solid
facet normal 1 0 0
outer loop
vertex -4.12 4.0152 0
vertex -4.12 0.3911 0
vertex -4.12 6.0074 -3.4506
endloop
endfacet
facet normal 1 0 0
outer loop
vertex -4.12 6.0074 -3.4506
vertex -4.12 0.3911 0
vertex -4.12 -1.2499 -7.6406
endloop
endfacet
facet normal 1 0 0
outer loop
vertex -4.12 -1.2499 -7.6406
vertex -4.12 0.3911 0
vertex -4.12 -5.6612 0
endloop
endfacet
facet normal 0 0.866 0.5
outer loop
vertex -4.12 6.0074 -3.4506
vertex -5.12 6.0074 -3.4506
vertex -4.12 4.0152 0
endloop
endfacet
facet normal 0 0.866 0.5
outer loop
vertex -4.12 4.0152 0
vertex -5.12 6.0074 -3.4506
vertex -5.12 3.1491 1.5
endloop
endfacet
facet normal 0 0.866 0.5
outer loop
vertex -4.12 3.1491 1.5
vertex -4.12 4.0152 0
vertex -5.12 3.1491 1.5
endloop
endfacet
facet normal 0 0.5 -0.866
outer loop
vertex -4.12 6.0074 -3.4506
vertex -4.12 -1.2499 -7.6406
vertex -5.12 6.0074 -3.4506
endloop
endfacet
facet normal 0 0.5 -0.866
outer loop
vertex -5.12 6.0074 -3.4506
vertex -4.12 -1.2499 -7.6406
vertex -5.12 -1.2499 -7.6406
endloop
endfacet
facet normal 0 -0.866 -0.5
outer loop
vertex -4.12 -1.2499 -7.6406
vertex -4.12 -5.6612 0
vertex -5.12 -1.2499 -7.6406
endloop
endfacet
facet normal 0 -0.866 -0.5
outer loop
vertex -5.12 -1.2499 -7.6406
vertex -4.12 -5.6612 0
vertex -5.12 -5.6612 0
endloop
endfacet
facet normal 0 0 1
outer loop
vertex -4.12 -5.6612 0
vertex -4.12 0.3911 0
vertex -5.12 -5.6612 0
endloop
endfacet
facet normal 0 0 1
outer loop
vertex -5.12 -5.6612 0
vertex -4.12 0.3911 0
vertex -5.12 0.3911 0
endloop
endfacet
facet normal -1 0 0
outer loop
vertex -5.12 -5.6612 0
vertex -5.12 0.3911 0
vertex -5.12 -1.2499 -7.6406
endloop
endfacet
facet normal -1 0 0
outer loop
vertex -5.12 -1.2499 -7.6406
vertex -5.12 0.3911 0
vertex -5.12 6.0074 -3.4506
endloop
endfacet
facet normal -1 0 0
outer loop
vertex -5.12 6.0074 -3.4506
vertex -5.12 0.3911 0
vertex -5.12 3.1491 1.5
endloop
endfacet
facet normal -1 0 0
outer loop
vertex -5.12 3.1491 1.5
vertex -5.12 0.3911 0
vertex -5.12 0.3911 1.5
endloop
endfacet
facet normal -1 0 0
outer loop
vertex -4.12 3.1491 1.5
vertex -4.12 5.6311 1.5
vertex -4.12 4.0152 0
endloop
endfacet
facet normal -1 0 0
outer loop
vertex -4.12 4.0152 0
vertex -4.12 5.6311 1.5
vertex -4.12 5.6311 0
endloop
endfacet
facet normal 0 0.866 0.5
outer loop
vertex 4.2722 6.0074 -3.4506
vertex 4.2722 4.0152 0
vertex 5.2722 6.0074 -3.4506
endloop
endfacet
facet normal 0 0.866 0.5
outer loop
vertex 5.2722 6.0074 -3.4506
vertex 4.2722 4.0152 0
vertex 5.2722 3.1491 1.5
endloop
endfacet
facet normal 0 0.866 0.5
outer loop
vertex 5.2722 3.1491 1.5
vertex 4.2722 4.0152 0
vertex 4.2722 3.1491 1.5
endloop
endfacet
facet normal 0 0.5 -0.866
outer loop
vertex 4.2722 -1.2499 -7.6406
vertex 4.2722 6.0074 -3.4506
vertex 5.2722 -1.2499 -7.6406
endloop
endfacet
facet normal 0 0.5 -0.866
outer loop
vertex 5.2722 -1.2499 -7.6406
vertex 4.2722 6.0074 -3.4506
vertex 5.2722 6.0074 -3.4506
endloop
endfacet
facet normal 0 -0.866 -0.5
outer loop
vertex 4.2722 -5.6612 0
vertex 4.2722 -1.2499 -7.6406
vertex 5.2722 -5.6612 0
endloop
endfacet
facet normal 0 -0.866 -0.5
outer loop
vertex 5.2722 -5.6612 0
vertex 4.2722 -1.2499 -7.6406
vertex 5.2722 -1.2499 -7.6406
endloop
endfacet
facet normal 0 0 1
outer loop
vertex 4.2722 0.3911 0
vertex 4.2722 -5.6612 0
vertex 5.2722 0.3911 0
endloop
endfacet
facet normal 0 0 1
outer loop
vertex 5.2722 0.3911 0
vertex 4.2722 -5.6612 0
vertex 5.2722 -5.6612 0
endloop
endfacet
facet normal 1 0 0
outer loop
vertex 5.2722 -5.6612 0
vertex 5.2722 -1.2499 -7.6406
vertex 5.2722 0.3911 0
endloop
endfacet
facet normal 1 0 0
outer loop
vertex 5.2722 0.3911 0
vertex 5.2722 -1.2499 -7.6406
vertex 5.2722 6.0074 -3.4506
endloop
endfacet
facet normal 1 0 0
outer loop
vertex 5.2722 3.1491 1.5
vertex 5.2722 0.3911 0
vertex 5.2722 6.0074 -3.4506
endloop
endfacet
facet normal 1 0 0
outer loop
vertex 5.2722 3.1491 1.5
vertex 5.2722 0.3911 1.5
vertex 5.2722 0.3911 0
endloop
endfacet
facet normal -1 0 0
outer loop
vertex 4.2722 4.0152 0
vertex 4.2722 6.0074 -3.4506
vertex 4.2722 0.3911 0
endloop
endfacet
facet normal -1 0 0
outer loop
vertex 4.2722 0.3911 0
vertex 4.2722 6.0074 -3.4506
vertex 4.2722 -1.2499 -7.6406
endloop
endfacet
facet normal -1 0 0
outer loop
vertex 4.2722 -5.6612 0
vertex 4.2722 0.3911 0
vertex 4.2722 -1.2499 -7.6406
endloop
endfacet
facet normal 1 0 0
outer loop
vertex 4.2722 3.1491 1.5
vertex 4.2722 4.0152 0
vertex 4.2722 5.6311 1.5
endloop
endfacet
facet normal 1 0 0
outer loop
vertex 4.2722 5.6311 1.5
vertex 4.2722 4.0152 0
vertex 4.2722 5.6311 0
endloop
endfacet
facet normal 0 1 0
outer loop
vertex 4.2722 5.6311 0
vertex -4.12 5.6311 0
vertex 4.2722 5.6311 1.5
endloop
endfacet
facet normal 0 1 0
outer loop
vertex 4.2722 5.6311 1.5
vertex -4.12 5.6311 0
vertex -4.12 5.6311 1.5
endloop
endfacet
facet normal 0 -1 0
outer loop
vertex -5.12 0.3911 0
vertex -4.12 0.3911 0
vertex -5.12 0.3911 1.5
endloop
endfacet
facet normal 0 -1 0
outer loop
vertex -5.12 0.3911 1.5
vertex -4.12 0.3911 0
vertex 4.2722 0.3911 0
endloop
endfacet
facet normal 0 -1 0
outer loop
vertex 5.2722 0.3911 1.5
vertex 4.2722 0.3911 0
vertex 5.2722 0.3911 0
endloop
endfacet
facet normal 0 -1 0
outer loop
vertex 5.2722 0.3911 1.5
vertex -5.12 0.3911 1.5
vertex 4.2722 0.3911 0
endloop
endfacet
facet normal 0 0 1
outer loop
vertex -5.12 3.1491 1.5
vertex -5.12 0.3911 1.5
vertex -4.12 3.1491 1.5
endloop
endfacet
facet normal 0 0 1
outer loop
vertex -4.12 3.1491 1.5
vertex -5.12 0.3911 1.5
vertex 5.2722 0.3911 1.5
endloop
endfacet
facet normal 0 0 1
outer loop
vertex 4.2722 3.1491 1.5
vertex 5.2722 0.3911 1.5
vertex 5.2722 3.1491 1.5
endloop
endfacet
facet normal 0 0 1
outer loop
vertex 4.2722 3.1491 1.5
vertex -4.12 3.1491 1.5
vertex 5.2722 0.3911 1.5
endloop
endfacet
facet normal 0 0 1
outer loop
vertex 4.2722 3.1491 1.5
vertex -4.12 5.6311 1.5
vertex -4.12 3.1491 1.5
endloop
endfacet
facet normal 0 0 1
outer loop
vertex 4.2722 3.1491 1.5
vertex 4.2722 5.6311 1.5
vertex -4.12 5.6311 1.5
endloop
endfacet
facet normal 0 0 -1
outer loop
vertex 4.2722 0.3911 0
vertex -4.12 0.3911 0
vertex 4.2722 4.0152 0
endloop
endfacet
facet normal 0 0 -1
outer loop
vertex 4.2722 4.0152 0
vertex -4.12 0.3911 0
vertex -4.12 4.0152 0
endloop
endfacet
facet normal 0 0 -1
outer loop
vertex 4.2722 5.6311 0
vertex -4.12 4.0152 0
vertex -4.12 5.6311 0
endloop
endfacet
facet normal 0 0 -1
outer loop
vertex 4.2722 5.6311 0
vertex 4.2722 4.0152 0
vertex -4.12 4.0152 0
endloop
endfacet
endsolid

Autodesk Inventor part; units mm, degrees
ref_plane "YZ Plane" through (0, 0, 0) normal (1, 0, 0) x (0, 1, 0)
ref_plane "XZ Plane" through (0, 0, 0) normal (0, 1, 0) x (-1, 0, 0)
ref_plane "XY Plane" through (0, 0, 0) normal (0, 0, 1) x (1, 0, 0)
ref_plane "Work Plane1" through (0, 0, 0) normal (0, 0, 1) x (1, 0, 0)
sketch "Sketch1" plane through (0, 0, 0) normal (0, 0, 1) x (1, 0, 0)
  line L0 (4, -5.5111) -> (4, 5.5111) construction
  line L1 (4, 5.5111) -> (-4, 5.5111) construction
  line L2 (-4, 5.5111) -> (-4, -5.5111) construction
  line L3 (-4, -5.5111) -> (4, -5.5111) construction
  line L4 (-4, 5.5111) -> (4.1522, 5.5111) construction
  line L5 (4.1522, 5.5111) -> (4.1522, 0.5111) construction
  line L6 (4.1522, 0.5111) -> (-4, 0.5111) construction
  line L7 (-4, 0.5111) -> (-4, 5.5111) construction
  line L8 (-4.12, 0.3911) -> (4.2722, 0.3911)
  line L9 (4.2722, 0.3911) -> (4.2722, 5.6311)
  line L10 (4.2722, 5.6311) -> (-4.12, 5.6311)
  line L11 (-4.12, 5.6311) -> (-4.12, 0.3911)
  point P0 (0, 0)
  dimension "d0" = 5
  dimension "d1" = 0.12
extrude "Extrusion1" add sketch "Sketch1" along normal blind 1.5
sketch "Sketch2" plane through (4.2722, 0.3911, 0) normal (1, 0, 0) x (0, 0, -1)
  line L0 (-1.5, 0) -> (-1.5, 5.24) construction
  line L1 (4.4205, 6.1762) -> (4.9103, 6.459) construction
  line L2 (4.9103, 6.459) -> (2.5, 10.6336) construction
  line L3 (2.5, 10.6336) -> (0.5, 9.4789) construction
  line L4 (0.5, 9.4789) -> (0.5, 5.12) construction
  line L5 (0.5, 5.12) -> (0, 5.12) construction
  line L6 (0, -5.9023) -> (0, 5.12) construction
  line L7 (0.5, -5.9023) -> (0, -5.9023) construction
  line L8 (8.6705, -1.185) -> (0.5, -5.9023) construction
  line L9 (8.6705, -1.185) -> (4.4205, 6.1762) construction
  line L10 (0.4678, -5.7823) -> (0.12, -5.7823) construction
  line L11 (0.12, -5.7823) -> (0.12, 5) construction
  line L12 (0.12, 5) -> (0.62, 5) construction
  line L13 (0.62, 5) -> (0.62, 9.4097) construction
  line L14 (0.62, 9.4097) -> (2.4561, 10.4697) construction
  line L15 (2.4561, 10.4697) -> (4.7463, 6.5029) construction
  line L16 (4.7463, 6.5029) -> (4.2566, 6.2201) construction
  line L17 (4.2566, 6.2201) -> (8.5066, -1.1411) construction
  line L18 (8.5066, -1.1411) -> (0.4678, -5.7823) construction
  line L19 (6.2093, 7.209) -> (-21.3823, -8.721) construction
  line L20 (4.3166, 6.1162) -> (-1.5, 2.758)
  line L21 (-1.5, 2.758) -> (-1.5, 0)
  line L22 (-1.5, 0) -> (0.12, 0)
  line L23 (8.5066, -1.1411) -> (0, -6.0524)
  line L24 (0, -6.0524) -> (0, 0)
  line L25 (8.5066, -1.1411) -> (4.3166, 6.1162)
  line L26 (3.4506, 5.6162) -> (7.6406, -1.6411)
  line L27 (0, -6.0524) -> (0, 0)
  line L28 (0, 0) -> (-1.5, 0)
  point P0 (0, -0.3911)
  dimension "d4" = 0.12
  dimension "d5" = 1
extrude "Extrusion2" add sketch "Sketch2" along normal blind 1 contours L26 L23 L24 L22 L21 L20
ref_plane "Work Plane2" through (0.0761, 5.6311, 1.5) normal (1, 0, 0) x (0, 0, -1)
mirror "Mirror1" about plane through (0.0761, 5.6311, 1.5) normal (1, 0, 0) of "Extrusion2"
properties part number "PTFEFilter_clamp"
